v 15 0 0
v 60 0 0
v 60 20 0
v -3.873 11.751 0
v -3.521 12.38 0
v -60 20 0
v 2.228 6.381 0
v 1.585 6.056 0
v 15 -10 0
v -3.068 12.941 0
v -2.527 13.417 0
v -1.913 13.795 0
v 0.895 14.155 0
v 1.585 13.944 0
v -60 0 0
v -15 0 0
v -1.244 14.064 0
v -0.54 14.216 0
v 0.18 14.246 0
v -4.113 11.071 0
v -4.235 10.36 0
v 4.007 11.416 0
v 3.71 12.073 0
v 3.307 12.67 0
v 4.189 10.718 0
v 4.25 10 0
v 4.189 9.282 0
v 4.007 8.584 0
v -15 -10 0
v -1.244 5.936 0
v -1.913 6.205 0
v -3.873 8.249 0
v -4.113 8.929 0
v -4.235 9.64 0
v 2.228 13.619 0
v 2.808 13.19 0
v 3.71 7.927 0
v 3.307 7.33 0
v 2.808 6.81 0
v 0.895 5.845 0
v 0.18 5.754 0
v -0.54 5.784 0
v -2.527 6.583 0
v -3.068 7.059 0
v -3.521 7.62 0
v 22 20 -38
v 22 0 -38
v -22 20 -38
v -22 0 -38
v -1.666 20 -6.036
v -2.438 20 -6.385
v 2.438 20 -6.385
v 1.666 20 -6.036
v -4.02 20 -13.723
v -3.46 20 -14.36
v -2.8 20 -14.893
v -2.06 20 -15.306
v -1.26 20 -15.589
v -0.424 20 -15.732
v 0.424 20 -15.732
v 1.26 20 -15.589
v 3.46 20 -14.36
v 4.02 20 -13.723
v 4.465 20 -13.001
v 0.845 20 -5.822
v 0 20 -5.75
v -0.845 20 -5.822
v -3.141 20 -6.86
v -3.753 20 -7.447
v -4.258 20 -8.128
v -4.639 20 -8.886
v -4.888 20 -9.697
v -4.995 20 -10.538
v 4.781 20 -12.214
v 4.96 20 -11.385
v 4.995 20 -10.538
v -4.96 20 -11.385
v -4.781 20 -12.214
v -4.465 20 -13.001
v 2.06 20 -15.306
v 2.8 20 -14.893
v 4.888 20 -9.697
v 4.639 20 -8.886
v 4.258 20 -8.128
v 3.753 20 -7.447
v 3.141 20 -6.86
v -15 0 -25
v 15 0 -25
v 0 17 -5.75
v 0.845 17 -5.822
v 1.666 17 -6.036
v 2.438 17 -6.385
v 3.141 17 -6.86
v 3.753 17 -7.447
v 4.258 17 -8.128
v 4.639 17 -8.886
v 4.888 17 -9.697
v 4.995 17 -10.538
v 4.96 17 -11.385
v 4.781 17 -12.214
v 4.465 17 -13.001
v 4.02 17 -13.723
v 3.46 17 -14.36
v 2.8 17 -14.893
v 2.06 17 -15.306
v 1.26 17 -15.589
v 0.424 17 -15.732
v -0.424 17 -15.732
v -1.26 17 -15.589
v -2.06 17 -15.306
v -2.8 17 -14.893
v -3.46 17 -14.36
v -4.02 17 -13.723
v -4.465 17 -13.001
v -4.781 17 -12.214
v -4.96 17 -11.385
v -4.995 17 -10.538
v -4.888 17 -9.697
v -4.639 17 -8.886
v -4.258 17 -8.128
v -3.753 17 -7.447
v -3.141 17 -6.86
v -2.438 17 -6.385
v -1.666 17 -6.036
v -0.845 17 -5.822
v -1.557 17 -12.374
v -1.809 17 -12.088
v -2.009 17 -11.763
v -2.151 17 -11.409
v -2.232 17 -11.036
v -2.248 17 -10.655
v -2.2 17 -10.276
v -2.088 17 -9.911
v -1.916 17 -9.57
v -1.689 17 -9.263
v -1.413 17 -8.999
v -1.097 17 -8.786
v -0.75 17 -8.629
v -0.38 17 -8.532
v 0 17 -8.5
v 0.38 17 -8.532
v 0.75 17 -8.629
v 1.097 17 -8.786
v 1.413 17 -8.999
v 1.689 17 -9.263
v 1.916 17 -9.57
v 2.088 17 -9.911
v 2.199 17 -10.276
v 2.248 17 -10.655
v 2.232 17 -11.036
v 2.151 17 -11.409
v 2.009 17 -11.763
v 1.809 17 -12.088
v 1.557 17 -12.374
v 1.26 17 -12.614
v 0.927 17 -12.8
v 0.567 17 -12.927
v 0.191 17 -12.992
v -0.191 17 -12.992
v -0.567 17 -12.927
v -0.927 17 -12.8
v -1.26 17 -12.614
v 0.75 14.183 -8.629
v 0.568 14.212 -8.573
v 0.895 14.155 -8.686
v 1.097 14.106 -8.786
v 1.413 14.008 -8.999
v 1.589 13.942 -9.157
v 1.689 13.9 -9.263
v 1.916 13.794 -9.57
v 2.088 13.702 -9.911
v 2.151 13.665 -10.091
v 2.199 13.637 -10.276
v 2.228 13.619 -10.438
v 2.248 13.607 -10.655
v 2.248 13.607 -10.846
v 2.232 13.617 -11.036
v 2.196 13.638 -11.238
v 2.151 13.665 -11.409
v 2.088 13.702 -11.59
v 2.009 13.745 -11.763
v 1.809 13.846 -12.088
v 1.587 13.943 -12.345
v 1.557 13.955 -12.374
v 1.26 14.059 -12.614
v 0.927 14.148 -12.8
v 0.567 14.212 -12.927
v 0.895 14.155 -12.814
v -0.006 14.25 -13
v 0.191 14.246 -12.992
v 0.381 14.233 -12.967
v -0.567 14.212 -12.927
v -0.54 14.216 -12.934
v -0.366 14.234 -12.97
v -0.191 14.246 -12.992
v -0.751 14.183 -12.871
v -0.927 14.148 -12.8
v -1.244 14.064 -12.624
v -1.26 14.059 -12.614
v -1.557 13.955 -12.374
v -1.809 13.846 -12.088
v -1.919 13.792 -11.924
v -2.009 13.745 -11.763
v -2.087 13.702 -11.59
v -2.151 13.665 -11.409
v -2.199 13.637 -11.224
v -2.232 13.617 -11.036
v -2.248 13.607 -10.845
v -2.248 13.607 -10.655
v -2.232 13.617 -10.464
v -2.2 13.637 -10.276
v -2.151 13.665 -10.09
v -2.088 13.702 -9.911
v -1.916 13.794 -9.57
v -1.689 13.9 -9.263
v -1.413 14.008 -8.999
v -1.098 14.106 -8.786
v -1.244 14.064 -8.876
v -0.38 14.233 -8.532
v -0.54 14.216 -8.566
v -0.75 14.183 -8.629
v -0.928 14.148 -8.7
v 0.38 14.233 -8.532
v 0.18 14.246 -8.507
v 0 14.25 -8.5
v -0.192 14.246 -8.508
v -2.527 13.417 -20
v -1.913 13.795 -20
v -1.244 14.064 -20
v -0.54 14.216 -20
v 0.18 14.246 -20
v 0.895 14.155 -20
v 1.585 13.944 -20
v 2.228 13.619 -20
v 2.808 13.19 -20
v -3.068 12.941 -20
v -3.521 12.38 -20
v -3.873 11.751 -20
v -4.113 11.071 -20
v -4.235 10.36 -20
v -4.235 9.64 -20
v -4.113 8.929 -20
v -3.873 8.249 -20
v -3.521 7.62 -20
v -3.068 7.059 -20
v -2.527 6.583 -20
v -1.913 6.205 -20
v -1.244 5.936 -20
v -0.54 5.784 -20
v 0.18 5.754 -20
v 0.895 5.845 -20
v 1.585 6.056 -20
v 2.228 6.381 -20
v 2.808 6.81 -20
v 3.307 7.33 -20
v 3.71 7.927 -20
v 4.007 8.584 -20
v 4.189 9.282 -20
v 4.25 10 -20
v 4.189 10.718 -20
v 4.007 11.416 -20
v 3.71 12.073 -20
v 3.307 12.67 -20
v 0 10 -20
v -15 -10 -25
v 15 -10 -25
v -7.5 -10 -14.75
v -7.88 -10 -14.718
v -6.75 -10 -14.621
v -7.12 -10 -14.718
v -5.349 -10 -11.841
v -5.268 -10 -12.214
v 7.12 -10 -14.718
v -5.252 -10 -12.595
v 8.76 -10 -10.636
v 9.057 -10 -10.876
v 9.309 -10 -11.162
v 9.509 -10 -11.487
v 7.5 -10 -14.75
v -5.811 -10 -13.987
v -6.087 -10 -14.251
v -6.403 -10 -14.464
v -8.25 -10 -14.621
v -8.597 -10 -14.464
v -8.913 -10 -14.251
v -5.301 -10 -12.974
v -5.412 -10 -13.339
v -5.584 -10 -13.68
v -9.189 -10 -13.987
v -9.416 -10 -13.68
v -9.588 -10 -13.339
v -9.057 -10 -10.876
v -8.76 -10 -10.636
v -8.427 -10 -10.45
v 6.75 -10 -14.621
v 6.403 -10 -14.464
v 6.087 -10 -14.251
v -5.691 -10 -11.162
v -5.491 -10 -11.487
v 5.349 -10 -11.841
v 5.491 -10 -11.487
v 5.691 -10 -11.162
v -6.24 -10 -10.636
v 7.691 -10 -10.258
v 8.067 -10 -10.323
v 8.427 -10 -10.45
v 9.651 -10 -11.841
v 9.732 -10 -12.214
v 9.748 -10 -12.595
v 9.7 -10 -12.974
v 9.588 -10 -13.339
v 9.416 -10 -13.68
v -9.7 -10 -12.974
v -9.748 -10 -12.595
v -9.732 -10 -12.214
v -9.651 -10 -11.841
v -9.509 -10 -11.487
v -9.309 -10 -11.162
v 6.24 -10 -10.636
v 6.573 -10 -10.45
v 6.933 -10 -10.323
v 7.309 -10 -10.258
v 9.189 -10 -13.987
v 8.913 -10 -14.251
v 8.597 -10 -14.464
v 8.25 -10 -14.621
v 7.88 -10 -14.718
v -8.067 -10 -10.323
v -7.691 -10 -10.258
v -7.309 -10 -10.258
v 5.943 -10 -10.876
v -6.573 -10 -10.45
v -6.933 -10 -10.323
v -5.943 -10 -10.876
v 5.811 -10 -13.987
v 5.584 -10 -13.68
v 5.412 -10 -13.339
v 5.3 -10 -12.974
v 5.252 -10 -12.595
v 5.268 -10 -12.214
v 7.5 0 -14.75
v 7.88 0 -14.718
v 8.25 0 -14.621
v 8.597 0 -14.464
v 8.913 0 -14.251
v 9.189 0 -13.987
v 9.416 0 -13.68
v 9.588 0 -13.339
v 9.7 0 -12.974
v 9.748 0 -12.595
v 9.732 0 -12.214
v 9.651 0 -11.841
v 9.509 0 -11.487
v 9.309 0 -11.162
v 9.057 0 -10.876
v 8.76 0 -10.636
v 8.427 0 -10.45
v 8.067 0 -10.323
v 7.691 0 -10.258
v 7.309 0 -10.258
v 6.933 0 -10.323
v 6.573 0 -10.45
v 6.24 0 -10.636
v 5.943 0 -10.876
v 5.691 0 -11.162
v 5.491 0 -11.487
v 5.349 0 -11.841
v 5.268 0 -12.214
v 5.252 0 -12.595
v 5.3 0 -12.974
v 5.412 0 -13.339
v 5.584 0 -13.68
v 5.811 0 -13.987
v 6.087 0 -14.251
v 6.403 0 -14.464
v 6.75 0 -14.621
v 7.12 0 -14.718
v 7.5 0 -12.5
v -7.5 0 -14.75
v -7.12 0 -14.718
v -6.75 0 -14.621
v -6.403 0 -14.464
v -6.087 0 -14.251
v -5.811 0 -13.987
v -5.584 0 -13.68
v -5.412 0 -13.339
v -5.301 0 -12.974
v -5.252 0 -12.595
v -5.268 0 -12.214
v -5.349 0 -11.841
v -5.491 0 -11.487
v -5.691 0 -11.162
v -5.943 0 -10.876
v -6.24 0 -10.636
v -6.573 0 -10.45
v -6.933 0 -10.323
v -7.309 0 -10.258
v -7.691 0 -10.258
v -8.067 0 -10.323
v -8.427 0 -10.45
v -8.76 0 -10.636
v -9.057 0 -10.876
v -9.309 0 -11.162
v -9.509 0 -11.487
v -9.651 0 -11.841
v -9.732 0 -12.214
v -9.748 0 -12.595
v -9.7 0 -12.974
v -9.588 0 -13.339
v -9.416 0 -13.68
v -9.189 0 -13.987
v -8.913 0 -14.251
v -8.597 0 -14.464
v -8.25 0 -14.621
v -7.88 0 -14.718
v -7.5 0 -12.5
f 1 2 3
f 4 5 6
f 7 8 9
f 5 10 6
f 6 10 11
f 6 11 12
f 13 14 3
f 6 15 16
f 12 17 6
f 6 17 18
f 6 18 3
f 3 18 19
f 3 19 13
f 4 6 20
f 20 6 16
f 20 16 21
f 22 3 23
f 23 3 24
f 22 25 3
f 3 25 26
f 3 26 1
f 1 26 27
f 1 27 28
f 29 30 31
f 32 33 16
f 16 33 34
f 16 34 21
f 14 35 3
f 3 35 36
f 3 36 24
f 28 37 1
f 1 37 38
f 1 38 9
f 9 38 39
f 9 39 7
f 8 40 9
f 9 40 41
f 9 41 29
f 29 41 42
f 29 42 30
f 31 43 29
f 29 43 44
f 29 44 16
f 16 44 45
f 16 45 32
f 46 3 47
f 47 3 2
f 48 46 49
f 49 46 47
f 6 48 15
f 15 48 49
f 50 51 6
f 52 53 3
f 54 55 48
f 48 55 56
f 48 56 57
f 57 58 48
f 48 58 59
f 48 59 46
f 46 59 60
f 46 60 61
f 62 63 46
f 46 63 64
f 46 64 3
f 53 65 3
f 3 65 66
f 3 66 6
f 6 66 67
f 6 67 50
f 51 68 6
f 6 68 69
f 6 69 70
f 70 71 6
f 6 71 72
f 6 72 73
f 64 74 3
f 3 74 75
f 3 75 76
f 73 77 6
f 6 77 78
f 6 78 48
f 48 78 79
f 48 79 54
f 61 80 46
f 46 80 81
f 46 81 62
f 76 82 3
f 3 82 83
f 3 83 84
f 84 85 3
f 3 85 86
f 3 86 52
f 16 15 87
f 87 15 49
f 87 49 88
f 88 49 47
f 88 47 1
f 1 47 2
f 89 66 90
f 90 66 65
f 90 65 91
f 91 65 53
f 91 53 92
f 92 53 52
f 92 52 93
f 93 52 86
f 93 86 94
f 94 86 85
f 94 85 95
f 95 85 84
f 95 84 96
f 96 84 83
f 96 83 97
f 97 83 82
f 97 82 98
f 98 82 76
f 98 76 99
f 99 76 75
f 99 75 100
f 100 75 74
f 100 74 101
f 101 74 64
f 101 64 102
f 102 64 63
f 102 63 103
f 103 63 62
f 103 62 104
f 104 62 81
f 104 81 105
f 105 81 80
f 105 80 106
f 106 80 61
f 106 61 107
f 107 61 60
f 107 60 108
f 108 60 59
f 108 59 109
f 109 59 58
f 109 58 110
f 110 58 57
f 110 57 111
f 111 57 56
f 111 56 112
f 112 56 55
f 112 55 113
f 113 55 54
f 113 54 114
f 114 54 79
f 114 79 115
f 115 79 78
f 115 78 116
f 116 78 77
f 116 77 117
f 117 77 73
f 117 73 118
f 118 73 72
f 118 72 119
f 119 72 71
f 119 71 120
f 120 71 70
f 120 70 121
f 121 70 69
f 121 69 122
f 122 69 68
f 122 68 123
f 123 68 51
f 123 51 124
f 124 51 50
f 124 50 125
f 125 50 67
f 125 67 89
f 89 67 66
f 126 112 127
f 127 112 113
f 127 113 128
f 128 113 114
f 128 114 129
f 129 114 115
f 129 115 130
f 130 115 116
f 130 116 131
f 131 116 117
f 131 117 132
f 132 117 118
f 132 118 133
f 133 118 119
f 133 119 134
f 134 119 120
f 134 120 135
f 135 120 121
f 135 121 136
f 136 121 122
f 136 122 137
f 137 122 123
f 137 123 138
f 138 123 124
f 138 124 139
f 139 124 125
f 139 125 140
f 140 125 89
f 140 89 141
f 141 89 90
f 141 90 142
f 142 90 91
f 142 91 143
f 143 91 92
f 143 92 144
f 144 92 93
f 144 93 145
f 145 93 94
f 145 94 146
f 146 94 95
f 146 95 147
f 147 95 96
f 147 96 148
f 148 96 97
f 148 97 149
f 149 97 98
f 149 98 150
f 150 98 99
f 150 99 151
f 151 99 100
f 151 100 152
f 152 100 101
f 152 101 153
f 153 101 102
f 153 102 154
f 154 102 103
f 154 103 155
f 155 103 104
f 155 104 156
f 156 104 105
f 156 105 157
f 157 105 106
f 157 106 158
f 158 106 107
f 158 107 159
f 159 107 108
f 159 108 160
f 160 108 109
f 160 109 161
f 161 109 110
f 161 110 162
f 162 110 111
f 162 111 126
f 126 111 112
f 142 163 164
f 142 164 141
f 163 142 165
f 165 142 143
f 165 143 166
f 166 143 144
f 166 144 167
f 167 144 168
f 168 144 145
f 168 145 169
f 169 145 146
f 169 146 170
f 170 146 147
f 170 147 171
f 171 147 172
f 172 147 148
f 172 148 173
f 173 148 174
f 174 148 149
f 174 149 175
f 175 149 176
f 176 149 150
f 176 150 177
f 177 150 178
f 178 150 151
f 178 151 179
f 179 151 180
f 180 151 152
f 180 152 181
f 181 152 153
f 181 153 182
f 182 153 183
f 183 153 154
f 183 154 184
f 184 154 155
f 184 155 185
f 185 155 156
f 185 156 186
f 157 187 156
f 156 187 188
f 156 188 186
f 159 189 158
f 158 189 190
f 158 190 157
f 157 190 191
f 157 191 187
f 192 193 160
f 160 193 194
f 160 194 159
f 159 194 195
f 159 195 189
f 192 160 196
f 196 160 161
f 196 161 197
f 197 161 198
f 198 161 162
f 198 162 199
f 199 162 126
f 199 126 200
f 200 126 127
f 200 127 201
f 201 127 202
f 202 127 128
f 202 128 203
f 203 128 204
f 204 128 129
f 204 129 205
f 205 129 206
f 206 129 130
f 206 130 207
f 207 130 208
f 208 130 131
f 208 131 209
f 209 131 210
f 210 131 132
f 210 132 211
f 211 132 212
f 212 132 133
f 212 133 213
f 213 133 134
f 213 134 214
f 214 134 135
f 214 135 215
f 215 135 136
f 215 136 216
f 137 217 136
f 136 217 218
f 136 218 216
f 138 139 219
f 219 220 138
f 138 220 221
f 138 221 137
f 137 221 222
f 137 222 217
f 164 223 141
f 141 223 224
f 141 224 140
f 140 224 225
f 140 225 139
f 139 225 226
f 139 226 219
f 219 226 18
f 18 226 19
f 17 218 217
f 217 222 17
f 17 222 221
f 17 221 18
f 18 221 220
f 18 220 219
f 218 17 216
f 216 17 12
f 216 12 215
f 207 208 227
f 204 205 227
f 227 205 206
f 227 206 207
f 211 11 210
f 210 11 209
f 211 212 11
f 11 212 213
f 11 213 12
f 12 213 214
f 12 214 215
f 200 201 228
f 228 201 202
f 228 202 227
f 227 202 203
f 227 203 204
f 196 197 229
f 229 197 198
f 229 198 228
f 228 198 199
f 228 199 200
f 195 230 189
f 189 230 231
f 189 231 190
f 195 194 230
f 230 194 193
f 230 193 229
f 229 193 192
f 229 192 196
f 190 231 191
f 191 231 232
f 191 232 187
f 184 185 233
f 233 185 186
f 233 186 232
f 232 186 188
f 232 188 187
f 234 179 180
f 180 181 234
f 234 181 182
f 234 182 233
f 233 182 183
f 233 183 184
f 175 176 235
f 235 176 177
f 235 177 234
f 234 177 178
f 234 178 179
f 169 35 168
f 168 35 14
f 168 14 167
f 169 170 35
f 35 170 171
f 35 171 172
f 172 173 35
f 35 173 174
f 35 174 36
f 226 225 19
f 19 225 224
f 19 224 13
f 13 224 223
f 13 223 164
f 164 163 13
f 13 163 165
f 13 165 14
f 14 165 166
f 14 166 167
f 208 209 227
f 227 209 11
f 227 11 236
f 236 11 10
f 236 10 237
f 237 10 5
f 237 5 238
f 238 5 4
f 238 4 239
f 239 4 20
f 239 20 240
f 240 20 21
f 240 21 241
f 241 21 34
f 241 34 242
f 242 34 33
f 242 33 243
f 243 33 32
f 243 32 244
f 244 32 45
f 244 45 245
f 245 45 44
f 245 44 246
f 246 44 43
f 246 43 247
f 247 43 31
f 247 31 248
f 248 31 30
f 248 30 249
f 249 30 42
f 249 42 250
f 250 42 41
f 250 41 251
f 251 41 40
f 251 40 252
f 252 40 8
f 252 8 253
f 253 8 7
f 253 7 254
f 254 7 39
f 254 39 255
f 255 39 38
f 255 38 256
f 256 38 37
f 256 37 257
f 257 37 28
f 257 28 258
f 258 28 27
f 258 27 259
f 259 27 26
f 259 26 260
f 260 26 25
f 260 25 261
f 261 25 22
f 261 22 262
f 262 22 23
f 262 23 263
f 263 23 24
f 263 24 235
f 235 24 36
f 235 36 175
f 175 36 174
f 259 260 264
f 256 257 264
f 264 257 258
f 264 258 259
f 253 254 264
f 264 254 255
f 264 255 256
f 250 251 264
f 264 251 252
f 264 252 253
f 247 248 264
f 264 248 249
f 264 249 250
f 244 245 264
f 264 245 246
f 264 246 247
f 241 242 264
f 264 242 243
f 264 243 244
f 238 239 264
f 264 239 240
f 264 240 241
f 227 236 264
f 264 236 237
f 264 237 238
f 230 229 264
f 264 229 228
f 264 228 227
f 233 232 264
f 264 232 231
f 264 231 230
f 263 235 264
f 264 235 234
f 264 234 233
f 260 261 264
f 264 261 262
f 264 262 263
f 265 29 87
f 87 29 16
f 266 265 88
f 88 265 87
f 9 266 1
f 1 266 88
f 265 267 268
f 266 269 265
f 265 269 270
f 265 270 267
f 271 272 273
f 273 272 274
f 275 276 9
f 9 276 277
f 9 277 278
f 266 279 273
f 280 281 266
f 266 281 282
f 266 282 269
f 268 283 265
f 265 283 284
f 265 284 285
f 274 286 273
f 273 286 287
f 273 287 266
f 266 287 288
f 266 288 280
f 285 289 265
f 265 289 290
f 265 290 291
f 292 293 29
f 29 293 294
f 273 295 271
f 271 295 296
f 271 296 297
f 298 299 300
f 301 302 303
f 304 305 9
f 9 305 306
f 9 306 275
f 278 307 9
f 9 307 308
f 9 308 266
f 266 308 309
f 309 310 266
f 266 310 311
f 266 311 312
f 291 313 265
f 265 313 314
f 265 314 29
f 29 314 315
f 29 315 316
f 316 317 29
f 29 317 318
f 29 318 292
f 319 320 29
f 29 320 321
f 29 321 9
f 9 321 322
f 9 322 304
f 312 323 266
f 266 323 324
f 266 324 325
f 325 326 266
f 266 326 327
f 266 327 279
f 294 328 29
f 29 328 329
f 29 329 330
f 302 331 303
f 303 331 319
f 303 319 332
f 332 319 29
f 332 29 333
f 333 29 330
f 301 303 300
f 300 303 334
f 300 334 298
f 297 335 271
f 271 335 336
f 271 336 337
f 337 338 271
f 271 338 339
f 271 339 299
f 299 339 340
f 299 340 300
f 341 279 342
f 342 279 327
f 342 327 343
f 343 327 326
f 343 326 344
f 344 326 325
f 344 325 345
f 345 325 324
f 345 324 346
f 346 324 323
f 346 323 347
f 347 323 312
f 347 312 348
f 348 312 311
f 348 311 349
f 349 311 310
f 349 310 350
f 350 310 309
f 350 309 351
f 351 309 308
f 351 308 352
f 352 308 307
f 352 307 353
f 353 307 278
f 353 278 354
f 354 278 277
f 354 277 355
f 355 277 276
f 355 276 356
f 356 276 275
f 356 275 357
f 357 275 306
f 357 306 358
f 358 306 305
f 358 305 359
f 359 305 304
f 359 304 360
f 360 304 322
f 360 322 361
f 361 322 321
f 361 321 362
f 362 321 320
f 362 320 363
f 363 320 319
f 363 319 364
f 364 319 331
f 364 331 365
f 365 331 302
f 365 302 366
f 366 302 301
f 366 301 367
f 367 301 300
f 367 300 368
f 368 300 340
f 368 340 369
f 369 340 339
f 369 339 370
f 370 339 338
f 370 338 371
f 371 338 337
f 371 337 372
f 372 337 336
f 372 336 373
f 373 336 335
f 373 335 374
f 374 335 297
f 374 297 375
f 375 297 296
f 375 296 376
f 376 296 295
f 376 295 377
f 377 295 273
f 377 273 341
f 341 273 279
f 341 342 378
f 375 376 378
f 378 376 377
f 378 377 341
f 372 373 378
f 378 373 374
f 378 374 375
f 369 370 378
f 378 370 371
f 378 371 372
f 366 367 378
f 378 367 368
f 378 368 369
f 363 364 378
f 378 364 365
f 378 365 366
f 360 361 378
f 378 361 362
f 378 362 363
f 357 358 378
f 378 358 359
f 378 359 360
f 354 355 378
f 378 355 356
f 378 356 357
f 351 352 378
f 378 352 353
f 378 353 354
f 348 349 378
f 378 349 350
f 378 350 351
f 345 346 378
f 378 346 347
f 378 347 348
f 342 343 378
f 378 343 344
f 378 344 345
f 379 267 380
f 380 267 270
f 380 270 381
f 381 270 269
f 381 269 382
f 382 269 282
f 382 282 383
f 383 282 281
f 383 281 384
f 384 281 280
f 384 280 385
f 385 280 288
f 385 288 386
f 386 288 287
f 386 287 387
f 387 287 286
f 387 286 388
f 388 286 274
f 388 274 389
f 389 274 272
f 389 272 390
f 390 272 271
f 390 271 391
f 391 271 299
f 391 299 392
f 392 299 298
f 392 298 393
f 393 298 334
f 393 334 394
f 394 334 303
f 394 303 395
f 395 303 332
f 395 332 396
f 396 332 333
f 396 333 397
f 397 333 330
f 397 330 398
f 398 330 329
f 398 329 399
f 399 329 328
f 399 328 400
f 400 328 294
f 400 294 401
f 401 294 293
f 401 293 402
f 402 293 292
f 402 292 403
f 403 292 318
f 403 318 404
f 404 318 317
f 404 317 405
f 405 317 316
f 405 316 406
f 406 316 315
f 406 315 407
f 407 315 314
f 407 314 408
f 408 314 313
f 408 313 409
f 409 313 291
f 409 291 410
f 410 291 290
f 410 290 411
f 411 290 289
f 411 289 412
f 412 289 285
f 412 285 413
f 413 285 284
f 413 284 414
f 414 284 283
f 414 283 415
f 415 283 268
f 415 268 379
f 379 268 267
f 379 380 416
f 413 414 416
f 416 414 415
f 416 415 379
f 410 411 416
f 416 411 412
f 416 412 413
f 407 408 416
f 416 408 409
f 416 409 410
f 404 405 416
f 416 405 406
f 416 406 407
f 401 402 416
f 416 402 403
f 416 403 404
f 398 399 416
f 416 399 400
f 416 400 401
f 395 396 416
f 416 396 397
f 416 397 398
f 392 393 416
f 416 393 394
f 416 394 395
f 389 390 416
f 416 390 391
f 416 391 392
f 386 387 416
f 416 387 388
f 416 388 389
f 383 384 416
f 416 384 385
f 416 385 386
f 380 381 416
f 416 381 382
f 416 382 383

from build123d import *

# Parameters (mm, degrees)
BOSS_EXTRUDE1_DEPTH = 20
SKETCH2_R           = 5
CUT_EXTRUDE1_DEPTH  = 3
SKETCH3_R           = 2.25
CUT_EXTRUDE2_DEPTH  = 10
SKETCH4_R           = 4.25
CUT_EXTRUDE3_DEPTH  = 20
SKETCH5_W           = 30
SKETCH5_H           = 25
BOSS_EXTRUDE2_DEPTH = 10
SKETCH6_R           = 2.25
CUT_EXTRUDE7_DEPTH  = 10


with BuildPart() as part:
    # Sketch1 → Boss-Extrude1 (new body)
    with BuildSketch(Plane(origin=(0, 0, 0), x_dir=(1, 0, 0), z_dir=(0, 1, 0))):
        Polygon((0, 0), (60, 0), (22, 38), (0, 38), (-22, 38), (-60, 0), align=None)
    extrude(amount=BOSS_EXTRUDE1_DEPTH)

    # Sketch2 → Cut-Extrude1 (cut)
    with BuildSketch(Plane(origin=(0, 20, 0), x_dir=(1, 0, 0), z_dir=(0, 1, 0))):
        with Locations(Location((0, 10.75, 0), (0, 0, 270))):
            Circle(SKETCH2_R)
    extrude(amount=-CUT_EXTRUDE1_DEPTH, mode=Mode.SUBTRACT)

    # Sketch3 → Cut-Extrude2 (cut)
    with BuildSketch(Plane(origin=(0, 20, 0), x_dir=(1, 0, 0), z_dir=(0, 1, 0))):
        with Locations(Location((0, 10.75, 0), (0, 0, 270))):
            Circle(SKETCH3_R)
    extrude(amount=-CUT_EXTRUDE2_DEPTH, mode=Mode.SUBTRACT)

    # Sketch4 → Cut-Extrude3 (cut)
    with BuildSketch(Plane.XY):
        with Locations((0, 10)):
            Circle(SKETCH4_R)
    extrude(amount=-CUT_EXTRUDE3_DEPTH, mode=Mode.SUBTRACT)

    # Sketch5 → Boss-Extrude2 (add)
    with BuildSketch(Plane.XZ):
        with Locations((0, -12.5)):
            Rectangle(SKETCH5_W, SKETCH5_H)
    extrude(amount=BOSS_EXTRUDE2_DEPTH)

    # Sketch6 → Cut-Extrude7 (cut)
    with BuildSketch(Plane.XZ.offset(10)):
        with Locations(Location((-7.5, -12.5, 0), (0, 0, 270))):
            Circle(SKETCH6_R)
        with Locations(Location((7.5, -12.5, 0), (0, 0, 270))):
            Circle(SKETCH6_R)
    extrude(amount=-CUT_EXTRUDE7_DEPTH, mode=Mode.SUBTRACT)


solid = part.part
